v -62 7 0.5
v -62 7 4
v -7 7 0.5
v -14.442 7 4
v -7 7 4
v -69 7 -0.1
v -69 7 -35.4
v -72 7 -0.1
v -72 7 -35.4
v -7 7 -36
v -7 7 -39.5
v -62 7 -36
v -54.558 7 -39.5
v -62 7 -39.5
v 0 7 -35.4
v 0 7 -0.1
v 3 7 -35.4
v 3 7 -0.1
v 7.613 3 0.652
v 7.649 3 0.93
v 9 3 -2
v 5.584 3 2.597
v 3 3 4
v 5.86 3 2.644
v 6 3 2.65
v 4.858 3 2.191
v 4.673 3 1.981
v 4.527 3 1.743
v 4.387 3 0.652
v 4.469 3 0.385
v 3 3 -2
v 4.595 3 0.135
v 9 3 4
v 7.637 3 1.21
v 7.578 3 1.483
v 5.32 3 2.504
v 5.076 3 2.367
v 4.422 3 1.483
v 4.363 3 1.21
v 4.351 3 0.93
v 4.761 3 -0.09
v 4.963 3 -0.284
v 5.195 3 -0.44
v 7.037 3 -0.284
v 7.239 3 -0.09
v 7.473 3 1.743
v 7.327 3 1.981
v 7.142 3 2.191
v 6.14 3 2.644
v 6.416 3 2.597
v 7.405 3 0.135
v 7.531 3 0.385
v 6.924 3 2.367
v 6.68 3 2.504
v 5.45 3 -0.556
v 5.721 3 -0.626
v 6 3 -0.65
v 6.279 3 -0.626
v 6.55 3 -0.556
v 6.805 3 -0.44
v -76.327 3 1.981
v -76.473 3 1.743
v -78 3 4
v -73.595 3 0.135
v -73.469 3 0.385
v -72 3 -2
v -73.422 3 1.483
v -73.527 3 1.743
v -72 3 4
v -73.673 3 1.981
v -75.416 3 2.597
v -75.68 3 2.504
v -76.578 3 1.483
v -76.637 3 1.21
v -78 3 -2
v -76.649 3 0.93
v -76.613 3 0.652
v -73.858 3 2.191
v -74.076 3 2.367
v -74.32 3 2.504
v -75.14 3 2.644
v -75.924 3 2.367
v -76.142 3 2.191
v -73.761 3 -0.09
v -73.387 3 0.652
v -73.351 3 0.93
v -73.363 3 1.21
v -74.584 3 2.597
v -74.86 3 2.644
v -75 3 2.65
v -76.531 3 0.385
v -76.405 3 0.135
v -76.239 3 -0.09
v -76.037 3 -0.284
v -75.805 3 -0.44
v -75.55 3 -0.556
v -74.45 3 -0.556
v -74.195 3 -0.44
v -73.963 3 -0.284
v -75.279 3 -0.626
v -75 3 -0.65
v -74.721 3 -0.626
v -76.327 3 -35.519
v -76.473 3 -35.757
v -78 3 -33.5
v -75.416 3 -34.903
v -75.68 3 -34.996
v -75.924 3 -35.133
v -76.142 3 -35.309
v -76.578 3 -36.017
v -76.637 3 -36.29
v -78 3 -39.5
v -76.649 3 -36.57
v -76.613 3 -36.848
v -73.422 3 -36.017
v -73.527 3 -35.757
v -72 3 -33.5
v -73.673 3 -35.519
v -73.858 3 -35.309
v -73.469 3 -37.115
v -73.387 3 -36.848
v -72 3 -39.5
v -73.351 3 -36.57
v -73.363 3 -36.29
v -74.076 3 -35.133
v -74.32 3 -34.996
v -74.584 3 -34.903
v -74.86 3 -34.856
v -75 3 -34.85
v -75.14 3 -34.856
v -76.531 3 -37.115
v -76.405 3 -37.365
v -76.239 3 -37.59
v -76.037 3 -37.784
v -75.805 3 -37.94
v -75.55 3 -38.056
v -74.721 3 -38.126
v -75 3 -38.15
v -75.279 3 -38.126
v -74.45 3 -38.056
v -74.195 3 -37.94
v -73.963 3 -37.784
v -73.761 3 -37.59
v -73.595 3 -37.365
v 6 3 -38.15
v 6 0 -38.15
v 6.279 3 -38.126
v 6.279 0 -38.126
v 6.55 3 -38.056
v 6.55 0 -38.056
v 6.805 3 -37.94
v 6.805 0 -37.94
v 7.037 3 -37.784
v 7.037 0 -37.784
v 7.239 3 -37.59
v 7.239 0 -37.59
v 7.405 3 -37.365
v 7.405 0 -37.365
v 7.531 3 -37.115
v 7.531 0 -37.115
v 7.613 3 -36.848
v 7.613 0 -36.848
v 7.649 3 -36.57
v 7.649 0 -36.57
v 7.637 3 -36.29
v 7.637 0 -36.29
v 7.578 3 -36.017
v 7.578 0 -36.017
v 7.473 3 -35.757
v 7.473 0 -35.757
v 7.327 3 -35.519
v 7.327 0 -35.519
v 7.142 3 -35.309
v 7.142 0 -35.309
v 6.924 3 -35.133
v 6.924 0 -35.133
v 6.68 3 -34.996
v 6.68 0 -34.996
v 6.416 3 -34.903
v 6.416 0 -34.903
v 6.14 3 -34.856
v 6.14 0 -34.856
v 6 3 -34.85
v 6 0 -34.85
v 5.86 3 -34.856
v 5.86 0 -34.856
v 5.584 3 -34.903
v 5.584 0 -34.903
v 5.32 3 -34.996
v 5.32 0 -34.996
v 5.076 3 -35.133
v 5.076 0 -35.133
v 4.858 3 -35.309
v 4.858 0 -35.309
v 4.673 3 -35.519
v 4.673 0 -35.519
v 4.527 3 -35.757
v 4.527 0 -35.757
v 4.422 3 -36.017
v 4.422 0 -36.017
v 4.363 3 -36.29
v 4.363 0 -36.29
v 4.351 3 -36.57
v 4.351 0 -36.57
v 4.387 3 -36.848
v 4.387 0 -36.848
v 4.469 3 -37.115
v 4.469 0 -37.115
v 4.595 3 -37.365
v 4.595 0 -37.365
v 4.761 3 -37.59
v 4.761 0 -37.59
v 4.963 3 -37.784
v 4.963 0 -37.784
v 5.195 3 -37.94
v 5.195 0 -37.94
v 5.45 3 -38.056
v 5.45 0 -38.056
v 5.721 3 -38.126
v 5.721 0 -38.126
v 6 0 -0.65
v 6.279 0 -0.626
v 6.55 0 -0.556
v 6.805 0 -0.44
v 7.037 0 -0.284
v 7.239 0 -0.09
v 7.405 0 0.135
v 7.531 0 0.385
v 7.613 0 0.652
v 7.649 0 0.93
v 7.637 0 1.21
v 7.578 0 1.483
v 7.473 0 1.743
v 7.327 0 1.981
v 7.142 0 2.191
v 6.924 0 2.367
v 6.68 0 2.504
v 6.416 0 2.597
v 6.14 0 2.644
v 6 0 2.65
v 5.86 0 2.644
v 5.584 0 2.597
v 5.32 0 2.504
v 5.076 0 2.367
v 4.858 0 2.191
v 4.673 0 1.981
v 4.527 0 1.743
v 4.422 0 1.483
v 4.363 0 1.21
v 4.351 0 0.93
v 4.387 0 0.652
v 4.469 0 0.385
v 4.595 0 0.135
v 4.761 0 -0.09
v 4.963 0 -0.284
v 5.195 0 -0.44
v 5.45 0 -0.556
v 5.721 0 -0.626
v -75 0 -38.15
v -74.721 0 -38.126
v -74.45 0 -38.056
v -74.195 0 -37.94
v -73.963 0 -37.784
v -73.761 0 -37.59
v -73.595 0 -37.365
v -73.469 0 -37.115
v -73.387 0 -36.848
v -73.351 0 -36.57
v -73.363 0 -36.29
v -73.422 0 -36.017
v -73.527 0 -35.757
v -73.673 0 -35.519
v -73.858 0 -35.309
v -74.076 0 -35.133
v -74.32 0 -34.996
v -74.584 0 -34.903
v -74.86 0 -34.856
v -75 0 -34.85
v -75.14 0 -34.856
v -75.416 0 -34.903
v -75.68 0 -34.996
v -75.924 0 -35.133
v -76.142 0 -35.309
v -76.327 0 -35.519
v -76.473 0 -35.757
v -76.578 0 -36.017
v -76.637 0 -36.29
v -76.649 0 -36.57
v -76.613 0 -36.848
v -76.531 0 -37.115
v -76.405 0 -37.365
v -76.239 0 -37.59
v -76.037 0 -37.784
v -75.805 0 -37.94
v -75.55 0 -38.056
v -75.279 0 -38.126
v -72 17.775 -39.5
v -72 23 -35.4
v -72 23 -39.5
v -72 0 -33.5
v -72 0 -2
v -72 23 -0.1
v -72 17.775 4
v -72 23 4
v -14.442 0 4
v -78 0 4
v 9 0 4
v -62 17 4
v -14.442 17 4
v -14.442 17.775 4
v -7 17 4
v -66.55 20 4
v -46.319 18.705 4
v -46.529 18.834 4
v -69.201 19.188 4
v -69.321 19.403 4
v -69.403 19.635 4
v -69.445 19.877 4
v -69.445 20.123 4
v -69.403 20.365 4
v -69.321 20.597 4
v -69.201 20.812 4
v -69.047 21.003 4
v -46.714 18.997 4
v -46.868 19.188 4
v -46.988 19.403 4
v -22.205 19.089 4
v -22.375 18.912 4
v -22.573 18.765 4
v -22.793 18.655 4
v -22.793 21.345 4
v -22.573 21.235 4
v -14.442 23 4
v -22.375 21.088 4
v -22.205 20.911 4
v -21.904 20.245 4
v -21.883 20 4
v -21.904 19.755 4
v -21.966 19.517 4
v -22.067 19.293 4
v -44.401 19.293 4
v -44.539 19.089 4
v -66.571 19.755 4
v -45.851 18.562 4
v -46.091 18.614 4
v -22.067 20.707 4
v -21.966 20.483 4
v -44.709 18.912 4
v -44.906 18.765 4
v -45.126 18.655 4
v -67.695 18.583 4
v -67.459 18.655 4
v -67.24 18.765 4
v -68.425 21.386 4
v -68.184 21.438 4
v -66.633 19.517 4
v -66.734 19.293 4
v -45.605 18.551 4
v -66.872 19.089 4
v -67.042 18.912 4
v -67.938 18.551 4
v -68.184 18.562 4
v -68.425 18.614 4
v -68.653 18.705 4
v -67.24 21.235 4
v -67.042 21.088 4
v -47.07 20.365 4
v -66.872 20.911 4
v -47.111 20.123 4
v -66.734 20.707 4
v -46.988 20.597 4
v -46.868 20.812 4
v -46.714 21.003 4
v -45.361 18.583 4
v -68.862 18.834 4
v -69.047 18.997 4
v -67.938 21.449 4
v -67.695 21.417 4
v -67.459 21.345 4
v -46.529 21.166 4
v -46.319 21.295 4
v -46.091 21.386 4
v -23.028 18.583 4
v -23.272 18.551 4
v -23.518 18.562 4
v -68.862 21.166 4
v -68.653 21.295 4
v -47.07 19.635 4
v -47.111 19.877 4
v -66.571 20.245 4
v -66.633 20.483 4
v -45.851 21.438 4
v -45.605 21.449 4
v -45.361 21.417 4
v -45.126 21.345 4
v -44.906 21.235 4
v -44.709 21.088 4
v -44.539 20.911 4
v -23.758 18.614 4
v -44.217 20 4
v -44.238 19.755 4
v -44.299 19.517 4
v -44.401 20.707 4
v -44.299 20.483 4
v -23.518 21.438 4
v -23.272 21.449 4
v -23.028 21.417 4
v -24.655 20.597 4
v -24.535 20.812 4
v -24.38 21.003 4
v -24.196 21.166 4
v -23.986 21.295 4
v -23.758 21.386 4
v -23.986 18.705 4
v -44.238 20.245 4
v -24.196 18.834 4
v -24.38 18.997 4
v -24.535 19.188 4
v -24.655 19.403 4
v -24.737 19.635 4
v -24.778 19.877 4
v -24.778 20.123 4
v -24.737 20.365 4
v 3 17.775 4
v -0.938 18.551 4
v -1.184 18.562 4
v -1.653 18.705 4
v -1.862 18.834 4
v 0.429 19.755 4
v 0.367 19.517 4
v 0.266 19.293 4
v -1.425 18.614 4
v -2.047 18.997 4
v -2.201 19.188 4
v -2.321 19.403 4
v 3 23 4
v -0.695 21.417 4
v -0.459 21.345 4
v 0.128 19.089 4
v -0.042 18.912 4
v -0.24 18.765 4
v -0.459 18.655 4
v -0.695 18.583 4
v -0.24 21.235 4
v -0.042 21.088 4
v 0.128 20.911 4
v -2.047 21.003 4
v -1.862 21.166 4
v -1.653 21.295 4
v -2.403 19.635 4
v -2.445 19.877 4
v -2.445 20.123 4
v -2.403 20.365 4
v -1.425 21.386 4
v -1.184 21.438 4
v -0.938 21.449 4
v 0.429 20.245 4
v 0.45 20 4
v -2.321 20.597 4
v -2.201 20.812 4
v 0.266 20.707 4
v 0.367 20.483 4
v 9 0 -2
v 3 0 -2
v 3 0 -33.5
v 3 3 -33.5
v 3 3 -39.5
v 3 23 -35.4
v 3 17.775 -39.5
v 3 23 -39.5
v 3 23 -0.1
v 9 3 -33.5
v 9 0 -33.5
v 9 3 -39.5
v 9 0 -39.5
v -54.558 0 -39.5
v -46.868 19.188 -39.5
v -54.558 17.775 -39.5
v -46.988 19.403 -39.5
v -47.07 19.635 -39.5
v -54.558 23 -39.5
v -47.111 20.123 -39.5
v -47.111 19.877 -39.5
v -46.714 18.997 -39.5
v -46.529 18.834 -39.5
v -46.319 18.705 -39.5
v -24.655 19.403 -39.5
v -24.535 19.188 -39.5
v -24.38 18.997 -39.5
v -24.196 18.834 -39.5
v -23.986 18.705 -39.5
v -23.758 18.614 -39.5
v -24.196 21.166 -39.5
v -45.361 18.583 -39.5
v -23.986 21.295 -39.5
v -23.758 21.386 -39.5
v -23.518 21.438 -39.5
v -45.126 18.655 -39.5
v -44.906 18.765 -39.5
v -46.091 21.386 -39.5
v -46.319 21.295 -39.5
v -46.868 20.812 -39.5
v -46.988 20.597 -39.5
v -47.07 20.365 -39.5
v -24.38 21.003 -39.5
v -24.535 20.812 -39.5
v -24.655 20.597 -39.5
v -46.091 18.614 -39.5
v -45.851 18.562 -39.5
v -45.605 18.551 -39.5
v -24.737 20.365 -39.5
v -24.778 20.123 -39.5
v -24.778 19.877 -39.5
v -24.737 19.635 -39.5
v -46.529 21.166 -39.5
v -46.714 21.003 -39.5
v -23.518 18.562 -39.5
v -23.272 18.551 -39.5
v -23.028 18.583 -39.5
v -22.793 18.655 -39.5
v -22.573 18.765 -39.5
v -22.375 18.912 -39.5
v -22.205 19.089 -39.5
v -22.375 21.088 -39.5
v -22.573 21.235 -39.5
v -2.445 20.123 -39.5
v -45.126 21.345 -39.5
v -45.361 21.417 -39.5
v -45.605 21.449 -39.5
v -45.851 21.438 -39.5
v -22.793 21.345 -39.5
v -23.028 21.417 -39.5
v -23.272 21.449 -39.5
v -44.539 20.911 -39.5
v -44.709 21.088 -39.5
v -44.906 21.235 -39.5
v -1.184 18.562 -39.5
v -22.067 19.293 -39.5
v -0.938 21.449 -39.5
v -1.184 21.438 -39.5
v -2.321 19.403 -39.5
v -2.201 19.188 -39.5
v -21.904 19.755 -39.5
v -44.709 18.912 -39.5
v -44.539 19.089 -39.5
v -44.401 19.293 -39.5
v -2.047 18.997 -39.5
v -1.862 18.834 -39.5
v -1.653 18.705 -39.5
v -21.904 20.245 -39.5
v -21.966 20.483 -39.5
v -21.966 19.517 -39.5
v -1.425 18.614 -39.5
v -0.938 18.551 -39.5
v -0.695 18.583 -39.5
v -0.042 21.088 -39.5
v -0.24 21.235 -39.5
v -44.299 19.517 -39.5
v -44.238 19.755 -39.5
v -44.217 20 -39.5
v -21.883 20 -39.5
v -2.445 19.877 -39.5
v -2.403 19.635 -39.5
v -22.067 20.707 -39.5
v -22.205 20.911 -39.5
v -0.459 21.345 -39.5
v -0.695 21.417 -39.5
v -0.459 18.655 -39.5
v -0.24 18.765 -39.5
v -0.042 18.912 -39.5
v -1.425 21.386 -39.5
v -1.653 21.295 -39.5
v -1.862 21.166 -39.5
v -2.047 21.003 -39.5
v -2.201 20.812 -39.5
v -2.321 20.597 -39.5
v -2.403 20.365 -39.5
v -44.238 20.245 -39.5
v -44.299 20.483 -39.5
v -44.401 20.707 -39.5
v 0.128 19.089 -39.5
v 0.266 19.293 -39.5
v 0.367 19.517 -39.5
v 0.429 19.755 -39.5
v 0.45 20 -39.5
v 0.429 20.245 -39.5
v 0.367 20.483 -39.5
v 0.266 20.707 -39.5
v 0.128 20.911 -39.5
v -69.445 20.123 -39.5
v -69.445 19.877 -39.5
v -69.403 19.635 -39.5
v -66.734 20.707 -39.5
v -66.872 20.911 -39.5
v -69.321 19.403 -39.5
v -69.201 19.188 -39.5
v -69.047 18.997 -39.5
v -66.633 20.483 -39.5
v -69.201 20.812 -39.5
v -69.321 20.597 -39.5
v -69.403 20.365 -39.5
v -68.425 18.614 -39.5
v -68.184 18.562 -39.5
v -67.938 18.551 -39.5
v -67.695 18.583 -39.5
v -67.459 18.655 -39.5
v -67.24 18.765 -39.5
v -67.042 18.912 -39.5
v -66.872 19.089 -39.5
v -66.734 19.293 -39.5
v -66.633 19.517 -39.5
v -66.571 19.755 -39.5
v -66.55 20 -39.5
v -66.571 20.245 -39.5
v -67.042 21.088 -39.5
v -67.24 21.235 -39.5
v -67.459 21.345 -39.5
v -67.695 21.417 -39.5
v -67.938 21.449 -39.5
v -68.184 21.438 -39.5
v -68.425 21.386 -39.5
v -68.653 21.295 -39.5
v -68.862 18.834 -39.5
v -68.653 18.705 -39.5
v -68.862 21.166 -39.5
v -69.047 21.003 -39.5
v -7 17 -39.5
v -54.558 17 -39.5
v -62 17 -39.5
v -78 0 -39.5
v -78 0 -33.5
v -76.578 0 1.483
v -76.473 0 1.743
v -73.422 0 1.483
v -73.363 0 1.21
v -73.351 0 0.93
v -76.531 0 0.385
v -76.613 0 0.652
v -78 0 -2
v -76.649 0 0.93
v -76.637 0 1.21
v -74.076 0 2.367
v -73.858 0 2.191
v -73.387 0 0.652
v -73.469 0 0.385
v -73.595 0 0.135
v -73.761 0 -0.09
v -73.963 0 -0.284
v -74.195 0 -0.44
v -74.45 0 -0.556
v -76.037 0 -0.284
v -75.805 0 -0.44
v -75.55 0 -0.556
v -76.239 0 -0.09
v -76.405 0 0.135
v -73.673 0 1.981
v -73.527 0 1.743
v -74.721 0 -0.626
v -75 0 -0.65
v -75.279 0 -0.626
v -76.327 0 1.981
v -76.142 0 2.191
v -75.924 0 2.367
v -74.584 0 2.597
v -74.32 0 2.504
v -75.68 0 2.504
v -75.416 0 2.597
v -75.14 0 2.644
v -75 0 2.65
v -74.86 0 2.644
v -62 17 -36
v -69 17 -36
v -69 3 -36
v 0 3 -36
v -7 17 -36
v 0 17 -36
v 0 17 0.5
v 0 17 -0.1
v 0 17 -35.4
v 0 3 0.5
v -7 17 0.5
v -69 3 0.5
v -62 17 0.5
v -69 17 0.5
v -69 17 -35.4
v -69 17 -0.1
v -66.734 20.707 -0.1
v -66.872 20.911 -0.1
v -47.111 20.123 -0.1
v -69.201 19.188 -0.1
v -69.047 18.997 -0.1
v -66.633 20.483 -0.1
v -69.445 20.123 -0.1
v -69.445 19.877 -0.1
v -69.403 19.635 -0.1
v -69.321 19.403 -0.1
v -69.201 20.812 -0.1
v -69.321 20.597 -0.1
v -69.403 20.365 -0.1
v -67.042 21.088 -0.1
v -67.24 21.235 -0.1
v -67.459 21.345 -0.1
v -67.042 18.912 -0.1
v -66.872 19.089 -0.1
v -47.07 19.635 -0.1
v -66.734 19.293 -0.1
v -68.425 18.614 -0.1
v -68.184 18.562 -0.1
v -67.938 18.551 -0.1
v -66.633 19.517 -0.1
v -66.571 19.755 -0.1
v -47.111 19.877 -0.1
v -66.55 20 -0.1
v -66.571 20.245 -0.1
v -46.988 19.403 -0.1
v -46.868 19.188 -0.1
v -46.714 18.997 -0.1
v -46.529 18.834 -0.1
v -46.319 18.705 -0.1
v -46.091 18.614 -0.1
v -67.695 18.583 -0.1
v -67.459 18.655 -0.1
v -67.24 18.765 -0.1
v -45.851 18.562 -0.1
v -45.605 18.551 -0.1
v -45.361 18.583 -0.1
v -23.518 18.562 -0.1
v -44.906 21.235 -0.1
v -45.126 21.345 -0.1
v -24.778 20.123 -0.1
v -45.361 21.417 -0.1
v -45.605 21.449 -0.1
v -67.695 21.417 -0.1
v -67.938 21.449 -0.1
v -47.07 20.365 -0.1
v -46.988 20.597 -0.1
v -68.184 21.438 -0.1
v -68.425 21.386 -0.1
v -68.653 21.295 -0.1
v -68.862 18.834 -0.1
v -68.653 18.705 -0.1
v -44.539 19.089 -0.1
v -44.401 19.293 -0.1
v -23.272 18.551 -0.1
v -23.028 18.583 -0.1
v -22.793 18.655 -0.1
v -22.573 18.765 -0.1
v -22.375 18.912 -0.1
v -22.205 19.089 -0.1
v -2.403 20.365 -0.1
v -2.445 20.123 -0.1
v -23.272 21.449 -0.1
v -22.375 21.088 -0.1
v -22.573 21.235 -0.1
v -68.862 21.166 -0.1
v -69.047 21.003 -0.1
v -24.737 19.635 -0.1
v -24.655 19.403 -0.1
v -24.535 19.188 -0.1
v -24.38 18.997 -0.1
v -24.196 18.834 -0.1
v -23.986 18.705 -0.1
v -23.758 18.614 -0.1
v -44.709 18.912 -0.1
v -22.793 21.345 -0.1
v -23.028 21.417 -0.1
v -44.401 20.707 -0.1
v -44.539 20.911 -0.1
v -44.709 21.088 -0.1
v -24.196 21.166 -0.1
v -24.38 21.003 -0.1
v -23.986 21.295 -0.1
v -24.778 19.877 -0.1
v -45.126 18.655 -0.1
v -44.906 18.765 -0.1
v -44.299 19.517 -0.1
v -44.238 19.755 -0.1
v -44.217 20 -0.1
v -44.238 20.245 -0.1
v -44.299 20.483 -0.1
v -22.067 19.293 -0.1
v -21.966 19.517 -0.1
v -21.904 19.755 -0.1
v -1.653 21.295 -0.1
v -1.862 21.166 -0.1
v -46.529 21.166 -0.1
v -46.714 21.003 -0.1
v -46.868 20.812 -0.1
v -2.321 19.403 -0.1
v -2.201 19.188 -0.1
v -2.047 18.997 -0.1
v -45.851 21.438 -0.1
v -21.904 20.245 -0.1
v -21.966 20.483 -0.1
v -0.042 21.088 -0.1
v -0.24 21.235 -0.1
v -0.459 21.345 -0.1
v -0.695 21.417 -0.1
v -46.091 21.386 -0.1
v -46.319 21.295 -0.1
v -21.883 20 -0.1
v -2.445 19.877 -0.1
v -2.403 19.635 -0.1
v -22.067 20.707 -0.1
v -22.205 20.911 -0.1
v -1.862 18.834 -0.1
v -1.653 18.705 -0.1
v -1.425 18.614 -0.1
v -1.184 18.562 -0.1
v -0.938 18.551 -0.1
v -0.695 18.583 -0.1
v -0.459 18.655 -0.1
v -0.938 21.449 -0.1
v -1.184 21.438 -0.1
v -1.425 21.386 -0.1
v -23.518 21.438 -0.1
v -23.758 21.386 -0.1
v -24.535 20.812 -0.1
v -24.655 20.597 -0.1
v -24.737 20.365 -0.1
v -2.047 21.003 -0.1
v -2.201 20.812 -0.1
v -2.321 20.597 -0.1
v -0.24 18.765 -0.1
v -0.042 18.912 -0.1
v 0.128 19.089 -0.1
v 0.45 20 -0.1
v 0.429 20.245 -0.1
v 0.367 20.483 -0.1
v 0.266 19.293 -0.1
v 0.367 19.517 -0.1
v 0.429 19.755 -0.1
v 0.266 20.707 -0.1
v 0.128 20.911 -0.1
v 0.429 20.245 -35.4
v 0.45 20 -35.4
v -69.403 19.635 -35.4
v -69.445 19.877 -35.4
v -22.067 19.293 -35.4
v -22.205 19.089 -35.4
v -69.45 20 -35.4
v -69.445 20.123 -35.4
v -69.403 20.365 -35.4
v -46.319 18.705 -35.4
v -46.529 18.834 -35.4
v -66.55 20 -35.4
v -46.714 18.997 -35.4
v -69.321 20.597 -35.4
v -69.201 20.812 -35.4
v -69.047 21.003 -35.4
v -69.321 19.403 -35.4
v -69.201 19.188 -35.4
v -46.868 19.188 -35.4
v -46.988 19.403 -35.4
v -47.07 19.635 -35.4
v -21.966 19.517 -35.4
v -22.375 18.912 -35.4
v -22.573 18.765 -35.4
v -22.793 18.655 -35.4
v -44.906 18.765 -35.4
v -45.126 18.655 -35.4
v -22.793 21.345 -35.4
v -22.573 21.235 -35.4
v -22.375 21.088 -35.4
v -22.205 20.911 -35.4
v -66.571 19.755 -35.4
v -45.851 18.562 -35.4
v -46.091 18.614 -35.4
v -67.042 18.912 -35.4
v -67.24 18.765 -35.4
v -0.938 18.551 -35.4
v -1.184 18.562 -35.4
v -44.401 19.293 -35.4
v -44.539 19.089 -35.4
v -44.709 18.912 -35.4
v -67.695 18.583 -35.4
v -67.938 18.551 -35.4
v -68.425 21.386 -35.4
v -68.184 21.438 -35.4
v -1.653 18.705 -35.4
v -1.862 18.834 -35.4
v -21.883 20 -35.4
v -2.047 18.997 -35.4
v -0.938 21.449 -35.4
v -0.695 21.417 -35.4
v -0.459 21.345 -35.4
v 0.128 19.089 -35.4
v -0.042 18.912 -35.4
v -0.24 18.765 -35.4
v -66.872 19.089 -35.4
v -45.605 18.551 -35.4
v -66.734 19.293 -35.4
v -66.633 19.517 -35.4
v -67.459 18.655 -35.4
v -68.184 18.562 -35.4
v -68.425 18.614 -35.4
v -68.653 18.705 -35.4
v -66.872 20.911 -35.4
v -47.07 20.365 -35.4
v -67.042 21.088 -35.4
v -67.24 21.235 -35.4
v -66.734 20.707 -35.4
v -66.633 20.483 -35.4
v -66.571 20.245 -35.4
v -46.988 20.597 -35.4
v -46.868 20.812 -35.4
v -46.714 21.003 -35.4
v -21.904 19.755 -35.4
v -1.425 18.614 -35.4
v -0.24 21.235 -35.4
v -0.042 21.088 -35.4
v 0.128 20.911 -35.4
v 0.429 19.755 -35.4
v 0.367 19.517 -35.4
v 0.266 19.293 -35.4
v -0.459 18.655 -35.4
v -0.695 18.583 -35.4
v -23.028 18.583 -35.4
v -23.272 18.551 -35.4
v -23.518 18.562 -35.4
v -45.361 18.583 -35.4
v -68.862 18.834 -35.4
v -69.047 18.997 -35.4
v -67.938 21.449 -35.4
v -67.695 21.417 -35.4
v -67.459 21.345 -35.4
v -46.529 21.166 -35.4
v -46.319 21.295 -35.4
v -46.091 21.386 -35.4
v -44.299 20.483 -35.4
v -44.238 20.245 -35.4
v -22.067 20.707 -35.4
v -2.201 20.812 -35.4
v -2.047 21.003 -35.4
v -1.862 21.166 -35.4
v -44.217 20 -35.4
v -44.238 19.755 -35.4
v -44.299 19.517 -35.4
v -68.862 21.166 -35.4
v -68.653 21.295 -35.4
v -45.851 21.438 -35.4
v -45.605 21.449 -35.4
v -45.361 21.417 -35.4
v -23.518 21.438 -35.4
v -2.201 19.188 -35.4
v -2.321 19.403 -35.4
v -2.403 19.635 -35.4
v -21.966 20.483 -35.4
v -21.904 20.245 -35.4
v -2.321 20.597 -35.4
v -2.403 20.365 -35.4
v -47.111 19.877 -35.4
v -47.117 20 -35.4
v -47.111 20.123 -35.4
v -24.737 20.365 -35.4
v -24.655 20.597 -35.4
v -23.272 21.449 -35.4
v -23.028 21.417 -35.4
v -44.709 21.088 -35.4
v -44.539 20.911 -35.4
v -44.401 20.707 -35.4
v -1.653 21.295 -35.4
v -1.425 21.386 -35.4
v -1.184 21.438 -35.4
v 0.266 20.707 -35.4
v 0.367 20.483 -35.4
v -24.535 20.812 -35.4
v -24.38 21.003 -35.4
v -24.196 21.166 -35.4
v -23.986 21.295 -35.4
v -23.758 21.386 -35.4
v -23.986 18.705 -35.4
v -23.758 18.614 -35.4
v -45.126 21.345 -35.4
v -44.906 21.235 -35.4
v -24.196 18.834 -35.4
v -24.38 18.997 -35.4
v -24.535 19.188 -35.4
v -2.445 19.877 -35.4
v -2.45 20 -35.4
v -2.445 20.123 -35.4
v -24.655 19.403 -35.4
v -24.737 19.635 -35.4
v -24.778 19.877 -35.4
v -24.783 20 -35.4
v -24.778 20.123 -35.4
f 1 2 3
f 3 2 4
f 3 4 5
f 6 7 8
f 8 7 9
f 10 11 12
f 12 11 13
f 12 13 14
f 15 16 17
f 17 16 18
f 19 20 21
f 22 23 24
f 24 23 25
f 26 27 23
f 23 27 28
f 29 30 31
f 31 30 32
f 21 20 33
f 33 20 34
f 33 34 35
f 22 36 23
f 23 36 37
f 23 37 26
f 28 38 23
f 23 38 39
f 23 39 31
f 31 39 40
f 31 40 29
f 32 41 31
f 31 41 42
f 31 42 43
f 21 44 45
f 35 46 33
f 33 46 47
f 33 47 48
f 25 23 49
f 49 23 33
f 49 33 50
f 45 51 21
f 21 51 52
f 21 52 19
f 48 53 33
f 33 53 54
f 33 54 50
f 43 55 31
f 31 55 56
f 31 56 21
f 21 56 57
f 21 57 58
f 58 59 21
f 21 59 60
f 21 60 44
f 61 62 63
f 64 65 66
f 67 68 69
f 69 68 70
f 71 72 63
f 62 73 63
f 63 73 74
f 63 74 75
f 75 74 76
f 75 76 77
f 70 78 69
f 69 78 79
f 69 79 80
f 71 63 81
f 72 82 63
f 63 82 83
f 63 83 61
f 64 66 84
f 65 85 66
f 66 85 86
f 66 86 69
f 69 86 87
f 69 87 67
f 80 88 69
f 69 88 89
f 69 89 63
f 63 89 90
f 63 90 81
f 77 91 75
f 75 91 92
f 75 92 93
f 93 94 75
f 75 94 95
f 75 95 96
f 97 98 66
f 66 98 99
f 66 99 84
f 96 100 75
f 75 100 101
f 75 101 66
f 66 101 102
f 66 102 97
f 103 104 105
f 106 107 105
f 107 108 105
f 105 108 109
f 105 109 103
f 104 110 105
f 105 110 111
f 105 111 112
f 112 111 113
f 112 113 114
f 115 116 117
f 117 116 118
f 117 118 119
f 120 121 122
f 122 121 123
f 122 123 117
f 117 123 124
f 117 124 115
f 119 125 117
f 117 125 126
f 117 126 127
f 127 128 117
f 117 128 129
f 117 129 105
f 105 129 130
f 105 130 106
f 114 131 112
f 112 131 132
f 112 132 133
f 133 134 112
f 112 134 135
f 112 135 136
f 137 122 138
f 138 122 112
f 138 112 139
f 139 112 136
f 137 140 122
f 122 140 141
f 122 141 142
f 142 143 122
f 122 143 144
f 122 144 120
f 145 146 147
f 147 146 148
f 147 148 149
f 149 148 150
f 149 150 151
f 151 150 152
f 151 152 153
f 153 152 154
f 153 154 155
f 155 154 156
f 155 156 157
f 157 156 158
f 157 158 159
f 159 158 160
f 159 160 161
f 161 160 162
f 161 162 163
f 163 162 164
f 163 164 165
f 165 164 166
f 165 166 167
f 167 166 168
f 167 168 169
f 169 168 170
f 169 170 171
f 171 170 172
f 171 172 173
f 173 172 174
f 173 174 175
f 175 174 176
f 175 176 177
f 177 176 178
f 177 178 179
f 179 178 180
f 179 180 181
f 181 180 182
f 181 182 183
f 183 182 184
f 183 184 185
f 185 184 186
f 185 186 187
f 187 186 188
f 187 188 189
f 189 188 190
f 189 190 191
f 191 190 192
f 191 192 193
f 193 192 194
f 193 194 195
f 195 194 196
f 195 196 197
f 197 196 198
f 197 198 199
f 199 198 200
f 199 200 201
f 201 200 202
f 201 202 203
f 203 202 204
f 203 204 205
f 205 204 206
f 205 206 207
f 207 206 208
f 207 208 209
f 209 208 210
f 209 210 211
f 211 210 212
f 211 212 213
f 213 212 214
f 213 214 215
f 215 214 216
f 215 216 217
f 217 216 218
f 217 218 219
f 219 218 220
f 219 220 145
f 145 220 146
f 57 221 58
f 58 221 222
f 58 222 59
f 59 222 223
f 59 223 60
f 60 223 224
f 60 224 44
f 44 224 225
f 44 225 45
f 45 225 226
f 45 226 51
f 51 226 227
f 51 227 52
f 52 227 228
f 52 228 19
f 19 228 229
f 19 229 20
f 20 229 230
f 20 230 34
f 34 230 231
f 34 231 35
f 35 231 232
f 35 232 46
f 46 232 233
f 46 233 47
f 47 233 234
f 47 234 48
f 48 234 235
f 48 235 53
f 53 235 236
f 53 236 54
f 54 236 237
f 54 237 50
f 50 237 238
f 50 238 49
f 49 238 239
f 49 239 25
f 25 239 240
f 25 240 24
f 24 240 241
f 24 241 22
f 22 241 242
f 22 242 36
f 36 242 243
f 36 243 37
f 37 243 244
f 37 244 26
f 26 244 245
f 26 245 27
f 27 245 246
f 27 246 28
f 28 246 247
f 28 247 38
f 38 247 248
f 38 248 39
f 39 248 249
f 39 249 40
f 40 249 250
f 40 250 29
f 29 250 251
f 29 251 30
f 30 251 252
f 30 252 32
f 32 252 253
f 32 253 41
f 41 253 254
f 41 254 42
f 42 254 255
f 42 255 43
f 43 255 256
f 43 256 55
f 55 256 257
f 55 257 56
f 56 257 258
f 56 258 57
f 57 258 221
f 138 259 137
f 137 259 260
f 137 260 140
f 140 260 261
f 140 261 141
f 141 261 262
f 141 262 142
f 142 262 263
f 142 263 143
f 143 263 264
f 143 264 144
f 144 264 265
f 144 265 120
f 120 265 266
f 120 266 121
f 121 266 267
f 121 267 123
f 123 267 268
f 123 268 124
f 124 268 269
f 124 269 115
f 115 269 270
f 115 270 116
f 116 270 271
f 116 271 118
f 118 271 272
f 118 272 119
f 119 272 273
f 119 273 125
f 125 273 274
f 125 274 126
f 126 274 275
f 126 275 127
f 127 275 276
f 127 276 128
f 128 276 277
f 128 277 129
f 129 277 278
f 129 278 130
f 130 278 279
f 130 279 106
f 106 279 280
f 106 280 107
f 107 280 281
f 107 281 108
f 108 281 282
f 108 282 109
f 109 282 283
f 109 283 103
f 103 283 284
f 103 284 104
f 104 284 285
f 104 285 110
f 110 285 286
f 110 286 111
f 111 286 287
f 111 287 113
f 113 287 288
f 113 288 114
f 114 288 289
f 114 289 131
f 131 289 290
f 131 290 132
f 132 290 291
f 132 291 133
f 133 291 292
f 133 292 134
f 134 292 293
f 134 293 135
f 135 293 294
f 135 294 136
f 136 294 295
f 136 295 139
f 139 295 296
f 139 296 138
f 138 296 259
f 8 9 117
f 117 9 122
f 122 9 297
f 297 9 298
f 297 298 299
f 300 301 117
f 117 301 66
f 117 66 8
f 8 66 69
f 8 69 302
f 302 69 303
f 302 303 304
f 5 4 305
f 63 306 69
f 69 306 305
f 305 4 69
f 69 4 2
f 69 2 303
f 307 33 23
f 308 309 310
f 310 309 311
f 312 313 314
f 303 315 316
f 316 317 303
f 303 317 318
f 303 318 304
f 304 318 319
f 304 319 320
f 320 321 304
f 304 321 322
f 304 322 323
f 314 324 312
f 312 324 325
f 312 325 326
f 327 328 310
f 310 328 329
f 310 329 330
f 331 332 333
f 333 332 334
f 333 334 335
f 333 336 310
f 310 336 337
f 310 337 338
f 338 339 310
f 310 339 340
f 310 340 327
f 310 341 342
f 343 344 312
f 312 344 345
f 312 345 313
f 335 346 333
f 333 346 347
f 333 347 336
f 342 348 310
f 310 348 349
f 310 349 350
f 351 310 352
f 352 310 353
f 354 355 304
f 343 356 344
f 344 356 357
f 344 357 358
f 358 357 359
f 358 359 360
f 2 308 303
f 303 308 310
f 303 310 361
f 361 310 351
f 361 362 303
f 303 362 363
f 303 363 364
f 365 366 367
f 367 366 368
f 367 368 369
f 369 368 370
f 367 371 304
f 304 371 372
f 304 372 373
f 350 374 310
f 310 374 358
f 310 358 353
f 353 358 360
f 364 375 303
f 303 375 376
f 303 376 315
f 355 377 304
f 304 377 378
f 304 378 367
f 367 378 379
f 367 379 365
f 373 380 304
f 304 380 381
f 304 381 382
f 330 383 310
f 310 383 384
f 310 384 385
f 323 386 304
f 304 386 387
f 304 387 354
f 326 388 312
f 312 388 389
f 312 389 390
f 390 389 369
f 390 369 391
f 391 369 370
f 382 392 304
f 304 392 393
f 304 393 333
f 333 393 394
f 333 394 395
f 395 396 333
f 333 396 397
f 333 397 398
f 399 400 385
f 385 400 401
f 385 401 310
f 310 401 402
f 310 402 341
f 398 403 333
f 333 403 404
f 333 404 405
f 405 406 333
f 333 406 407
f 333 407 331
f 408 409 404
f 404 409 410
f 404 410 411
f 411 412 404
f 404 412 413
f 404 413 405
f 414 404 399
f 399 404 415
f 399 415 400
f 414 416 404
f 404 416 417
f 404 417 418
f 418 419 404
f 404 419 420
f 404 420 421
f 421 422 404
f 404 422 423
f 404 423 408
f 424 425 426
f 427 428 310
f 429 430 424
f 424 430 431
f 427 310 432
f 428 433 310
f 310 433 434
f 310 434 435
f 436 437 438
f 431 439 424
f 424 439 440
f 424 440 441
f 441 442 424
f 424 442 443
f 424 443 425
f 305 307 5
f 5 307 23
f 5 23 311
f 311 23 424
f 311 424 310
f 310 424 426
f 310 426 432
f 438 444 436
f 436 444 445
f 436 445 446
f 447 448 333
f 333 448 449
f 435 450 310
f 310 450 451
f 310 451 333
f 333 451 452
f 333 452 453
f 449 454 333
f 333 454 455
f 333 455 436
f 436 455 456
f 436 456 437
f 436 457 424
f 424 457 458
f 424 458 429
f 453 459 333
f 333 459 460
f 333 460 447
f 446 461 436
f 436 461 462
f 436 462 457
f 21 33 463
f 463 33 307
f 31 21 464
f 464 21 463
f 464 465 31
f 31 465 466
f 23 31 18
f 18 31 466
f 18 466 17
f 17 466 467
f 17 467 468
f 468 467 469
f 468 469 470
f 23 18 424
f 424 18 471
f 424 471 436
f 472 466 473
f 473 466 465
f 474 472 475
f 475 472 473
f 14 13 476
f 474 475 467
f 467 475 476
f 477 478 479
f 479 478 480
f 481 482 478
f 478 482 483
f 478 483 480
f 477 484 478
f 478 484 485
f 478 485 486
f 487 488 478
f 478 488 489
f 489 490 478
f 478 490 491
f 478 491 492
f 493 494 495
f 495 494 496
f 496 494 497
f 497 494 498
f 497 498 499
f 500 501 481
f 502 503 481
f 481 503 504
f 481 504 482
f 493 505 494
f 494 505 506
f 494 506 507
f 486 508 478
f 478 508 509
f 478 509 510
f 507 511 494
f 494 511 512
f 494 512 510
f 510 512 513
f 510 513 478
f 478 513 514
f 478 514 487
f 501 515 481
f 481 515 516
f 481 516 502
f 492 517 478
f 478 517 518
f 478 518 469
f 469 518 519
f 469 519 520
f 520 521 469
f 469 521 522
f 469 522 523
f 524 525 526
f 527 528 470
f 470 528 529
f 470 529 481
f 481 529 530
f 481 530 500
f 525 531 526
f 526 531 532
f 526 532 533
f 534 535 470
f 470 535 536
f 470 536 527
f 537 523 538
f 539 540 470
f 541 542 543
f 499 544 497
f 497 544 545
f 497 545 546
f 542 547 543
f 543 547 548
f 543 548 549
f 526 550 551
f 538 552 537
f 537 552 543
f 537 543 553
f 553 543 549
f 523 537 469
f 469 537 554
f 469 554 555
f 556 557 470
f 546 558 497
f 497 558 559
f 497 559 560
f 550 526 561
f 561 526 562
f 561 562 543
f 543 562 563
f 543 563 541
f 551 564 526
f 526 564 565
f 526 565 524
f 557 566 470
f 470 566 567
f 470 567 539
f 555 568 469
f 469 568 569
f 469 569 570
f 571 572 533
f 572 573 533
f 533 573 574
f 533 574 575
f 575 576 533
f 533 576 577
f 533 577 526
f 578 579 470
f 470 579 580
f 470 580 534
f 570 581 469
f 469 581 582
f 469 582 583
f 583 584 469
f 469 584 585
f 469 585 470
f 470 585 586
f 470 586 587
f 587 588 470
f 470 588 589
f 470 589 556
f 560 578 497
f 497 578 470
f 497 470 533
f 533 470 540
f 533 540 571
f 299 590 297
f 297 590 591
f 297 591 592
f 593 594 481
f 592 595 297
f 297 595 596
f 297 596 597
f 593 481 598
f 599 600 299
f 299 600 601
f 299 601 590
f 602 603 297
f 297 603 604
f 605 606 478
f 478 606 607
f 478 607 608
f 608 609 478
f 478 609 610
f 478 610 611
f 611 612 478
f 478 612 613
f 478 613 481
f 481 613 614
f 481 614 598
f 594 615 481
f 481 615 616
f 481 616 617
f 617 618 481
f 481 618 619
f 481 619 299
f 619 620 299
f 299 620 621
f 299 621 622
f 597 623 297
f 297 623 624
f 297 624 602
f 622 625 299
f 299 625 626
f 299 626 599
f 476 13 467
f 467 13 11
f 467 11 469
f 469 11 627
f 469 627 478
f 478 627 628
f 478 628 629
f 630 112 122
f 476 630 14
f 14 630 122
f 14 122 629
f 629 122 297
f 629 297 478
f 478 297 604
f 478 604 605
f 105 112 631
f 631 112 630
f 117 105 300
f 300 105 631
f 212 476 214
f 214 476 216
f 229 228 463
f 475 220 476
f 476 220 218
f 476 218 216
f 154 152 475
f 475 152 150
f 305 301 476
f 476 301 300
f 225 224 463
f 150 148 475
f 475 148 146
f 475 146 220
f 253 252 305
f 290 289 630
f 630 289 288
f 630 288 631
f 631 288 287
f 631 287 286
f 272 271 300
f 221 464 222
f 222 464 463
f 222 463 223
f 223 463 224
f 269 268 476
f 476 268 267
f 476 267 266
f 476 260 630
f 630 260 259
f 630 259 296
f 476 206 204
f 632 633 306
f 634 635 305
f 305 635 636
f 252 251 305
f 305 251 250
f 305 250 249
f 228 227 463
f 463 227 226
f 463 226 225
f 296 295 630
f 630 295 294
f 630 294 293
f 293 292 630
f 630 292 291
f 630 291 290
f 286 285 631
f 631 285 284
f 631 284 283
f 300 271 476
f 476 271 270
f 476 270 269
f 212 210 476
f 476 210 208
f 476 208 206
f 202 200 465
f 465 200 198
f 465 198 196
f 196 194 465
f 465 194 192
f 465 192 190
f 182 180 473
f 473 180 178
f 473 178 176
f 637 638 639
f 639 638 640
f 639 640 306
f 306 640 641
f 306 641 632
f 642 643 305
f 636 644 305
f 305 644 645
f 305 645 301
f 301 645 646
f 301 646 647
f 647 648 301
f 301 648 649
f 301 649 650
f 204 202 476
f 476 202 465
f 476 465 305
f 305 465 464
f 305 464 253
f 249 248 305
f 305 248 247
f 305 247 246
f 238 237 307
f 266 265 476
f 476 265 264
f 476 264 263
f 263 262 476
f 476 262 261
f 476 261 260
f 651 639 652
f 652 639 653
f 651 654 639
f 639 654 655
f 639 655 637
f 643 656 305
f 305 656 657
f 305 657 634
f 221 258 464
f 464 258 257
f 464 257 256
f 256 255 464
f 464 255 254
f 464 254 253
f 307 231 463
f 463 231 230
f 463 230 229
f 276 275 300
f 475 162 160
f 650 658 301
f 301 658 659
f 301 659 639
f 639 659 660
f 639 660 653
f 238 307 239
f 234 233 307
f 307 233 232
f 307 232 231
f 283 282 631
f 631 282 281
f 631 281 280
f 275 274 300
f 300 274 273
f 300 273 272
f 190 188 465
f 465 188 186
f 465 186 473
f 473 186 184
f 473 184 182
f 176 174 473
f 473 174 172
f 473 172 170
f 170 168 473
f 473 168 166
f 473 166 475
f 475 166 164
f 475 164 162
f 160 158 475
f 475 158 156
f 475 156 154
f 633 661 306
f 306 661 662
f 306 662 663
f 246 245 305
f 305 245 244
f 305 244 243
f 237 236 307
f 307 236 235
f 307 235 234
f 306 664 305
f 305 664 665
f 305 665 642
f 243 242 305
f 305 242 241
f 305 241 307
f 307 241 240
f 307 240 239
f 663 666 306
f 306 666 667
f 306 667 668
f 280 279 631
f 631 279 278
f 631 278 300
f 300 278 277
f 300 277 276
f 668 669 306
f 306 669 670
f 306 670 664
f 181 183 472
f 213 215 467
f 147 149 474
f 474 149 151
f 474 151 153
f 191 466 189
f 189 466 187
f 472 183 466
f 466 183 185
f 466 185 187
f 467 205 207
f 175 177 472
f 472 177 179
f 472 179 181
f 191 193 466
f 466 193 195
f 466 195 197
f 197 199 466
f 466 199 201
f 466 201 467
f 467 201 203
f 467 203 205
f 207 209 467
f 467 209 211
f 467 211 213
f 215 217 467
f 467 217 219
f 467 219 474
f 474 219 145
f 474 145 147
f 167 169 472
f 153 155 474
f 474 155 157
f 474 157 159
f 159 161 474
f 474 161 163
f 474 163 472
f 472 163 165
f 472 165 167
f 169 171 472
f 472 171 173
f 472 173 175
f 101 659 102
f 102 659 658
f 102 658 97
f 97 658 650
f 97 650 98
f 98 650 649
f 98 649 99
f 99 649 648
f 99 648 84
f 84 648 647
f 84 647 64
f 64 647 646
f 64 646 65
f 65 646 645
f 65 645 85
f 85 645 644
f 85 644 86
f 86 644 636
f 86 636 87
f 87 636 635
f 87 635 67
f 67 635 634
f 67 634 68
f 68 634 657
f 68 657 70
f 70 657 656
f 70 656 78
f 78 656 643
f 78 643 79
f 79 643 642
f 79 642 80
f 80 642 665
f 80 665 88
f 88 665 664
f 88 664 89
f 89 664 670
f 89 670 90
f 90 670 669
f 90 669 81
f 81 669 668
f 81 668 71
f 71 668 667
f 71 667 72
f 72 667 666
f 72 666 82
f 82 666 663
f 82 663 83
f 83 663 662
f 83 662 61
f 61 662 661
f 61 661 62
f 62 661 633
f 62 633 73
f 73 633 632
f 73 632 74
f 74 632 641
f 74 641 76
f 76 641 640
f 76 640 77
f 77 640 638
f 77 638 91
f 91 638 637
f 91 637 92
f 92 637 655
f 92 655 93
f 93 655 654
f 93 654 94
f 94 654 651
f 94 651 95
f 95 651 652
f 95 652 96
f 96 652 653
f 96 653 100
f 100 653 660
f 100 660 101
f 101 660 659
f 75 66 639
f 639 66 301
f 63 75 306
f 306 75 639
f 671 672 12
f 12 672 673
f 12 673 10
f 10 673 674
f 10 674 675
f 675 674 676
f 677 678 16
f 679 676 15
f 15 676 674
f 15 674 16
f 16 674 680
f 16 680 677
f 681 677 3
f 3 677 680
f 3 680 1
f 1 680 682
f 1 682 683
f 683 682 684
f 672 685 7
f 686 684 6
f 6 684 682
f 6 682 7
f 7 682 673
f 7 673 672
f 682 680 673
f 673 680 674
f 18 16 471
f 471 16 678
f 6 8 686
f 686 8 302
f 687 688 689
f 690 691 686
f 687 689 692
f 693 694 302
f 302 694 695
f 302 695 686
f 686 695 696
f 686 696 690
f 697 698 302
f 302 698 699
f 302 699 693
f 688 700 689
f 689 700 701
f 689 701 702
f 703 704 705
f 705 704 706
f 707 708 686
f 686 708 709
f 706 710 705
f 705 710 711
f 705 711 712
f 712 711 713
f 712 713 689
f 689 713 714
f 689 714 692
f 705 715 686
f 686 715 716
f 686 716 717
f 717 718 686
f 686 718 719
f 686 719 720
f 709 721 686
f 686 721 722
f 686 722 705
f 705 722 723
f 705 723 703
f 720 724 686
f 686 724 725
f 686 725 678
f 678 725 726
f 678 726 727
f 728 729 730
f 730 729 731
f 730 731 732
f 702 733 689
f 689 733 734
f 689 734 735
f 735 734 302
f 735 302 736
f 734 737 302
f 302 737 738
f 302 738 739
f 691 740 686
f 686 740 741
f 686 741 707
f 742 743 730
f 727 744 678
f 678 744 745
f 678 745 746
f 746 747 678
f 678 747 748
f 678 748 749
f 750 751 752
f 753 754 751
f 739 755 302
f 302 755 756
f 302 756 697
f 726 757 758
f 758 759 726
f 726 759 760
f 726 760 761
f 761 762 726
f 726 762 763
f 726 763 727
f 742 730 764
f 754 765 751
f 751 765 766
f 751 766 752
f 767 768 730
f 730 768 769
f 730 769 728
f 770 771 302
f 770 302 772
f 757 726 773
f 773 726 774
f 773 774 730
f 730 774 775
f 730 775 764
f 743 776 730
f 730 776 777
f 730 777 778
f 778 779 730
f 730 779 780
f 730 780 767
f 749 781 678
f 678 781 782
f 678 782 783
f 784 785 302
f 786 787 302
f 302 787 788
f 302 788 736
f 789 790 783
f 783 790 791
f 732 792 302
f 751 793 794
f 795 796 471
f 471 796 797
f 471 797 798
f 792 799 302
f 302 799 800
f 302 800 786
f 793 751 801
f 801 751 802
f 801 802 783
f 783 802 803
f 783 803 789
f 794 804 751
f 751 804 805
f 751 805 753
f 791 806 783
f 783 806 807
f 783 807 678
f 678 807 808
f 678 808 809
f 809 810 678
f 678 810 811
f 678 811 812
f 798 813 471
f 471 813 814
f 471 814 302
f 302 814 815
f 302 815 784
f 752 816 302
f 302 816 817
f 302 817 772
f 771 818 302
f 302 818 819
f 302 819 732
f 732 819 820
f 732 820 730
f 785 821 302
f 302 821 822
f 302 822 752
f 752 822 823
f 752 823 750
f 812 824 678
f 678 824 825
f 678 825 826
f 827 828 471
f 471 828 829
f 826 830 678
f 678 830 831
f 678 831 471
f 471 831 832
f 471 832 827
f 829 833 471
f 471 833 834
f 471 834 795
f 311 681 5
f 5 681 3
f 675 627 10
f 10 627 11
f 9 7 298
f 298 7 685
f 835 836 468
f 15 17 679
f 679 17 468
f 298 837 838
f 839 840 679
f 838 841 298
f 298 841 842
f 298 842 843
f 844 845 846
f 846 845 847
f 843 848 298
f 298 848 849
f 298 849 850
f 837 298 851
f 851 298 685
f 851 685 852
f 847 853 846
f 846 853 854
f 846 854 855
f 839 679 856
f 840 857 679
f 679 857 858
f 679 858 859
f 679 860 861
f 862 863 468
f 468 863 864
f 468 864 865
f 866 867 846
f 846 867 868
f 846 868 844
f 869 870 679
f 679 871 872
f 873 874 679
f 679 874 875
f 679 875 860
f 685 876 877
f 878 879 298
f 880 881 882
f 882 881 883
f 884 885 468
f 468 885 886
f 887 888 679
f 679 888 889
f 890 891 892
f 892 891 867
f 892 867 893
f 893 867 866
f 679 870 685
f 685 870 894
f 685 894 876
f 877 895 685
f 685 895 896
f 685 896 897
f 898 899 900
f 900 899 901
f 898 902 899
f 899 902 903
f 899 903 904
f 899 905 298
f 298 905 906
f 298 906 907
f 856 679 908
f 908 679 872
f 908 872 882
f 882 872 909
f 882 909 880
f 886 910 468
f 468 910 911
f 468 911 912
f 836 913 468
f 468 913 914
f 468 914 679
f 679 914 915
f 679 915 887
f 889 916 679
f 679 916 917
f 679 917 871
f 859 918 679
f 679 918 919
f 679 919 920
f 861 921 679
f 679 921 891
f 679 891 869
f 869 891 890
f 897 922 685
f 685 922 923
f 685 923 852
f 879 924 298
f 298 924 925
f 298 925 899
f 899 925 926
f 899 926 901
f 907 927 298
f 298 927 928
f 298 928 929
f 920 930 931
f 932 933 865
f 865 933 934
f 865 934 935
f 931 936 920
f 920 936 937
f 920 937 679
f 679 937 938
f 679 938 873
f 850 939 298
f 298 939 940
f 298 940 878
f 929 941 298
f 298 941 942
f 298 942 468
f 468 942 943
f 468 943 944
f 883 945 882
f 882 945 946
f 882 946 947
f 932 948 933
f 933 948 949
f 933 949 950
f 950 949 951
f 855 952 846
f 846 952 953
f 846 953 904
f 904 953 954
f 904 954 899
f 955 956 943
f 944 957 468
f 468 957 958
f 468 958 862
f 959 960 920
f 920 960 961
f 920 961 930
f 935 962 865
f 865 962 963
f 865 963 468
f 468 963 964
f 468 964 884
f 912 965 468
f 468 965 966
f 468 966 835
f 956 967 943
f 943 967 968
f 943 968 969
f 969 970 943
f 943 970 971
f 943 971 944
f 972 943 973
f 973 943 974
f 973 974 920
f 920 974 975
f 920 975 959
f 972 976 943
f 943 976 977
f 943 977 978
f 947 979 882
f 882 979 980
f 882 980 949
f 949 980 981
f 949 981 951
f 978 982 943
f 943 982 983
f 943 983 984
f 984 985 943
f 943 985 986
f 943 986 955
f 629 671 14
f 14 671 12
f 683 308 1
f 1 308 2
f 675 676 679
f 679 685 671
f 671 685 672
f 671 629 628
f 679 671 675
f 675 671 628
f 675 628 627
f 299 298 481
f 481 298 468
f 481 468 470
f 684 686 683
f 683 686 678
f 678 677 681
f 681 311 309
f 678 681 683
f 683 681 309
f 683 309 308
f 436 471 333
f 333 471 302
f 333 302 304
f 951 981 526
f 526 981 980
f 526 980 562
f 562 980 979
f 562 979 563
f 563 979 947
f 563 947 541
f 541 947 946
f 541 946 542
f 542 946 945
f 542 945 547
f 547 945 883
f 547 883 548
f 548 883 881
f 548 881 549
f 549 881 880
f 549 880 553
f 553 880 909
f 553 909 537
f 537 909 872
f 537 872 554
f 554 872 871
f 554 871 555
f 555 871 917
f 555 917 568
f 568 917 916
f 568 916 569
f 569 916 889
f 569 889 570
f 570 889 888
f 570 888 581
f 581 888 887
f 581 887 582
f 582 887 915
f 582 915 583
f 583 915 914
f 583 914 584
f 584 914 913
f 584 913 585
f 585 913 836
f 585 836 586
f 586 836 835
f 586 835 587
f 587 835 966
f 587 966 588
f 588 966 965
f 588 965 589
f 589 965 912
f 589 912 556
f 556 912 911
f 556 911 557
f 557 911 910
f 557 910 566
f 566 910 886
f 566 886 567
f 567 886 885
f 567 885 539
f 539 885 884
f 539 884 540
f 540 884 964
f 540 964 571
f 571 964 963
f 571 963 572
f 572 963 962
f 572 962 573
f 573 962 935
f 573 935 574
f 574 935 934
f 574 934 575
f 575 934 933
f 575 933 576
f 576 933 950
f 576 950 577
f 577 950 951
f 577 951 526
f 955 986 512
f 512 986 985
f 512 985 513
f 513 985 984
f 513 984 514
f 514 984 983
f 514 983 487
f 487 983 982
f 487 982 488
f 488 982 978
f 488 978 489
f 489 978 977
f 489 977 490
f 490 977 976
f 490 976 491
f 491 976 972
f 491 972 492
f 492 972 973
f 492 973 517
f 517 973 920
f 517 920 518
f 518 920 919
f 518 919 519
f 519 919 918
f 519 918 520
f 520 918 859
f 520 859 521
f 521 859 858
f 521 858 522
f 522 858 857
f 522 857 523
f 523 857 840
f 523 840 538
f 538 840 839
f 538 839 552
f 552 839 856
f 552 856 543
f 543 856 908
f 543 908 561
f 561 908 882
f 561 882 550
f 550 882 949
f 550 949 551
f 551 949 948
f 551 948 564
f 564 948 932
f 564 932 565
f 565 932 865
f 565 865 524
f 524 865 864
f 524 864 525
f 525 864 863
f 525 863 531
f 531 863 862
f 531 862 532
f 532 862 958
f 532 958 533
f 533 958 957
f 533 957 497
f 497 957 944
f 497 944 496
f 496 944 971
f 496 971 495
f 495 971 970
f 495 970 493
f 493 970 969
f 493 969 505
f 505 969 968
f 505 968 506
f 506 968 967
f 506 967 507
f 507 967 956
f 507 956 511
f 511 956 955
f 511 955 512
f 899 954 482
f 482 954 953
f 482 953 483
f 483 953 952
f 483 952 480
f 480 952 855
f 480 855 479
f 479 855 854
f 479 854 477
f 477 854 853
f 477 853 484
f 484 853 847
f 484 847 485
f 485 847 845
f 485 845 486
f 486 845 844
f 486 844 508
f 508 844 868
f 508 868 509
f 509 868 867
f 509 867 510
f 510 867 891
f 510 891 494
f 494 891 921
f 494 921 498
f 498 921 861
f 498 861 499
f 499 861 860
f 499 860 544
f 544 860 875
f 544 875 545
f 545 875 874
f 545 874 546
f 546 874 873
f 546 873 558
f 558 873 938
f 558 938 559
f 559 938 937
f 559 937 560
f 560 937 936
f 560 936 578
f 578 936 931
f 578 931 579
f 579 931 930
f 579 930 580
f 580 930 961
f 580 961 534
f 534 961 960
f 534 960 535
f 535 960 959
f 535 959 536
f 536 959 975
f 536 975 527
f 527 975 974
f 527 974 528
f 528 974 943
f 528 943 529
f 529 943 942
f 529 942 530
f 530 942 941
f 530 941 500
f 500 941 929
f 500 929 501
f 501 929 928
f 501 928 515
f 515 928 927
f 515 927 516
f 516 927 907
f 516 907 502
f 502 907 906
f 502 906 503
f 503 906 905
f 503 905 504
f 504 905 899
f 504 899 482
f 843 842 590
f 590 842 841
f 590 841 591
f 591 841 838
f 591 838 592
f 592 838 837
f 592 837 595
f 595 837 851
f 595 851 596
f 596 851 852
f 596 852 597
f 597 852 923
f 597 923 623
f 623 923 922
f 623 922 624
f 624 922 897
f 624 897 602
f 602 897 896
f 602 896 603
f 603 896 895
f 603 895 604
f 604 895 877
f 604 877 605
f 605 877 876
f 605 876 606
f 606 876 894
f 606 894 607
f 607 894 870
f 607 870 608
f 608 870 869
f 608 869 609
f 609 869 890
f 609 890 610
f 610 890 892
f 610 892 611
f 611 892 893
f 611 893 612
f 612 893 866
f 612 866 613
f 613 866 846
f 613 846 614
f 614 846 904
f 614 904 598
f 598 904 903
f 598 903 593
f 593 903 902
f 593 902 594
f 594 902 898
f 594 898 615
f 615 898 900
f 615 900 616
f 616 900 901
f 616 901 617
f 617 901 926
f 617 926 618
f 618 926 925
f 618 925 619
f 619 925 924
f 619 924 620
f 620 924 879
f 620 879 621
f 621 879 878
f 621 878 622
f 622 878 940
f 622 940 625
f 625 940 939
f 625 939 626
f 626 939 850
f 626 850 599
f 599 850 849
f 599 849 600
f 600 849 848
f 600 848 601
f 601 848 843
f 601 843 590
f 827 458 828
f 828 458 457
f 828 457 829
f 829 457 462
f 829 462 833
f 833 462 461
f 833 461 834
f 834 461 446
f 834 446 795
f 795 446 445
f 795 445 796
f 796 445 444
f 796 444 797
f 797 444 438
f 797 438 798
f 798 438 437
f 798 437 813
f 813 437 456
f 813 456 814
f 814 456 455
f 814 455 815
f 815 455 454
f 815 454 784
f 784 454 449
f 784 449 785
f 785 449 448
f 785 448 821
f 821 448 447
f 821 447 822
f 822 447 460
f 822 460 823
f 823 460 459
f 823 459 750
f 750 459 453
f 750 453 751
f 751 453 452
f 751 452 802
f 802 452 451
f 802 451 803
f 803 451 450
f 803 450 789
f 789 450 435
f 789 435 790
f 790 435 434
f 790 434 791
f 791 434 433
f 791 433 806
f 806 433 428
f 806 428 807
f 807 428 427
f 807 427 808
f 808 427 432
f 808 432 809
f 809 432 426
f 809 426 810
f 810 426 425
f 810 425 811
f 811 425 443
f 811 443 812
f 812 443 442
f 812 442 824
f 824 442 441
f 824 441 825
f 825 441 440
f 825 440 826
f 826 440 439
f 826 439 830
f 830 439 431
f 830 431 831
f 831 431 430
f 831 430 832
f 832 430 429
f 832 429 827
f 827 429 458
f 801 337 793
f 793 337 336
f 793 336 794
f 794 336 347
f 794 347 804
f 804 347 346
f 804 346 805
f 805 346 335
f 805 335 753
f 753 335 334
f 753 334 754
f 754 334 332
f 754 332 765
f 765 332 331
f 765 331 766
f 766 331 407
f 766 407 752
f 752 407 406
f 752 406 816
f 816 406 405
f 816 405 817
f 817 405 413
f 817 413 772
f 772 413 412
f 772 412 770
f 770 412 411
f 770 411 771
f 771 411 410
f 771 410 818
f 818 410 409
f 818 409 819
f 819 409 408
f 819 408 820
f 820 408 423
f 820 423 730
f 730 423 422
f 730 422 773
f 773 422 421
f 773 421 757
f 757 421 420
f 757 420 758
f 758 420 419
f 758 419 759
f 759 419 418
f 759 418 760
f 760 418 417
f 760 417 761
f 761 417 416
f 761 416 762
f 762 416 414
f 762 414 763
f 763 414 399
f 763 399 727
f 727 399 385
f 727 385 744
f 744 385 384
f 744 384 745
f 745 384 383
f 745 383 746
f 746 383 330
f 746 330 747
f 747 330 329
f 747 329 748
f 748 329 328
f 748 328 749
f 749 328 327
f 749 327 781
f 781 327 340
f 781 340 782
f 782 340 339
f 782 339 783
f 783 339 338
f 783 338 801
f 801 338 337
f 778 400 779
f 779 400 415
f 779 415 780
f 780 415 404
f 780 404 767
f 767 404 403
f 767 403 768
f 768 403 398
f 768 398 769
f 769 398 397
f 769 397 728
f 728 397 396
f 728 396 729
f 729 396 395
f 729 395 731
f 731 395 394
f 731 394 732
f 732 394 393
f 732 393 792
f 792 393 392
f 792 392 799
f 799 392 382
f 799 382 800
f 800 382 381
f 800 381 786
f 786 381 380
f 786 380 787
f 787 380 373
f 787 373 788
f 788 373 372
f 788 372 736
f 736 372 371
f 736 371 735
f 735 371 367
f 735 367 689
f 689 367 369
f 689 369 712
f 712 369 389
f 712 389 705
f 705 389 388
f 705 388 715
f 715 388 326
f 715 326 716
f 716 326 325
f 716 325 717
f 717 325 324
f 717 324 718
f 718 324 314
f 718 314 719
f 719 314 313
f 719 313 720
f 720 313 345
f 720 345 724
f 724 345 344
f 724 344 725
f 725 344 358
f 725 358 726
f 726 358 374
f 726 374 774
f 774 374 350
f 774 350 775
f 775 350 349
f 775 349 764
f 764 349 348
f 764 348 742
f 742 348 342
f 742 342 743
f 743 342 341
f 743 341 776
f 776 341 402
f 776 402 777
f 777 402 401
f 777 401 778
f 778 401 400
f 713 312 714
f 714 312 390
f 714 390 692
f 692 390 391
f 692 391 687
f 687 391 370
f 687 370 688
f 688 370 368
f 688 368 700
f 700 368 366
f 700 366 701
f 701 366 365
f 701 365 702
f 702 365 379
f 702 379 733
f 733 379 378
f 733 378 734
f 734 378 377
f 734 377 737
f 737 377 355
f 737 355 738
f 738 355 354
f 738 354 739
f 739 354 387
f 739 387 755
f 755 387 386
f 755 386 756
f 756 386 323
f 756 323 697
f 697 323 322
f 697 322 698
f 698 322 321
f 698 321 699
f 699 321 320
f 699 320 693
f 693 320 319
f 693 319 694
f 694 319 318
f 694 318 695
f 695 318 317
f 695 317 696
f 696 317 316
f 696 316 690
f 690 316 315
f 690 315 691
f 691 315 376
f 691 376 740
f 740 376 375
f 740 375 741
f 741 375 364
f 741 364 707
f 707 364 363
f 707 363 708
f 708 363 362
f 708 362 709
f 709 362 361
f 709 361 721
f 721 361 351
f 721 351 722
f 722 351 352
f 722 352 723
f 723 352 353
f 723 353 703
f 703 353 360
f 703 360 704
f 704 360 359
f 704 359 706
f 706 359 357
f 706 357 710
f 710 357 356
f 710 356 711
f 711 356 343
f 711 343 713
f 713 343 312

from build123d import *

# Parameters (mm, degrees)
SKETCH1_R           = 1.65
BOSS_EXTRUDE1_DEPTH = 3
SKETCH2_W           = 69
SKETCH2_H           = 36.5
BOSS_EXTRUDE2_DEPTH = 4
BOSS_EXTRUDE3_DEPTH = 10
SKETCH4_W           = 75
SKETCH4_H           = 4.1
BOSS_EXTRUDE4_DEPTH = 6
SKETCH5_R           = 1.45
CUT_EXTRUDE1_DEPTH  = 93.2239123


with BuildPart() as part:
    # Sketch1 → Boss-Extrude1 (new body)
    with BuildSketch(Plane(origin=(0, 0, 0), x_dir=(1, 0, 0), z_dir=(0, 1, 0))):
        Polygon((-78, 39.5), (-78, 33.5), (-72, 33.5), (-72, 2), (-78, 2), (-78, -4), (9, -4), (9, 2), (3, 2), (3, 33.5), (9, 33.5), (9, 39.5), align=None)
        with Locations(Location((-75, 36.5, 0), (0, 0, 270))):
            Circle(SKETCH1_R, mode=Mode.SUBTRACT)
        with Locations(Location((6, 36.5, 0), (0, 0, 270))):
            Circle(SKETCH1_R, mode=Mode.SUBTRACT)
        with Locations(Location((-75, -1, 0), (0, 0, 270))):
            Circle(SKETCH1_R, mode=Mode.SUBTRACT)
        with Locations(Location((6, -1, 0), (0, 0, 270))):
            Circle(SKETCH1_R, mode=Mode.SUBTRACT)
    extrude(amount=BOSS_EXTRUDE1_DEPTH)

    # Sketch2 → Boss-Extrude2 (add)
    with BuildSketch(Plane(origin=(0, 3, 0), x_dir=(1, 0, 0), z_dir=(0, 1, 0))):
        Polygon((-72, 39.5), (-72, 33.5), (-72, 2), (-72, -4), (3, -4), (3, 2), (3, 33.5), (3, 39.5), align=None)
        with Locations((-34.5, 17.75)):
            Rectangle(SKETCH2_W, SKETCH2_H, mode=Mode.SUBTRACT)
    extrude(amount=BOSS_EXTRUDE2_DEPTH)

    # Sketch3 → Boss-Extrude3 (add)
    with BuildSketch(Plane(origin=(0, 7, 0), x_dir=(1, 0, 0), z_dir=(0, 1, 0))):
        Polygon((3, -4), (3, 0.1), (0, 0.1), (0, -0.5), (-7, -0.5), (-7, -4), align=None)
        Polygon((3, 39.5), (-7, 39.5), (-7, 36), (0, 36), (0, 35.4), (3, 35.4), align=None)
        Polygon((-72, 39.5), (-72, 35.4), (-69, 35.4), (-69, 36), (-62, 36), (-62, 39.5), align=None)
        Polygon((-72, -4), (-62, -4), (-62, -0.5), (-69, -0.5), (-69, 0.1), (-72, 0.1), align=None)
    extrude(amount=BOSS_EXTRUDE3_DEPTH)

    # Sketch4 → Boss-Extrude4 (add)
    with BuildSketch(Plane(origin=(0, 17, 0), x_dir=(1, 0, 0), z_dir=(0, 1, 0))):
        with Locations((-34.5, 37.45)):
            Rectangle(SKETCH4_W, SKETCH4_H)
        with Locations((-34.5, -1.95)):
            Rectangle(SKETCH4_W, SKETCH4_H)
    extrude(amount=BOSS_EXTRUDE4_DEPTH)

    # Sketch5 → Cut-Extrude1 (cut, through all)
    with BuildSketch(Plane.XY.offset(4)):
        with Locations((-68, 20)):
            Circle(SKETCH5_R)
        with Locations((-45.666666667, 20)):
            Circle(SKETCH5_R)
        with Locations((-23.333333333, 20)):
            Circle(SKETCH5_R)
        with Locations((-1, 20)):
            Circle(SKETCH5_R)
    extrude(amount=-CUT_EXTRUDE1_DEPTH, mode=Mode.SUBTRACT)


solid = part.part
